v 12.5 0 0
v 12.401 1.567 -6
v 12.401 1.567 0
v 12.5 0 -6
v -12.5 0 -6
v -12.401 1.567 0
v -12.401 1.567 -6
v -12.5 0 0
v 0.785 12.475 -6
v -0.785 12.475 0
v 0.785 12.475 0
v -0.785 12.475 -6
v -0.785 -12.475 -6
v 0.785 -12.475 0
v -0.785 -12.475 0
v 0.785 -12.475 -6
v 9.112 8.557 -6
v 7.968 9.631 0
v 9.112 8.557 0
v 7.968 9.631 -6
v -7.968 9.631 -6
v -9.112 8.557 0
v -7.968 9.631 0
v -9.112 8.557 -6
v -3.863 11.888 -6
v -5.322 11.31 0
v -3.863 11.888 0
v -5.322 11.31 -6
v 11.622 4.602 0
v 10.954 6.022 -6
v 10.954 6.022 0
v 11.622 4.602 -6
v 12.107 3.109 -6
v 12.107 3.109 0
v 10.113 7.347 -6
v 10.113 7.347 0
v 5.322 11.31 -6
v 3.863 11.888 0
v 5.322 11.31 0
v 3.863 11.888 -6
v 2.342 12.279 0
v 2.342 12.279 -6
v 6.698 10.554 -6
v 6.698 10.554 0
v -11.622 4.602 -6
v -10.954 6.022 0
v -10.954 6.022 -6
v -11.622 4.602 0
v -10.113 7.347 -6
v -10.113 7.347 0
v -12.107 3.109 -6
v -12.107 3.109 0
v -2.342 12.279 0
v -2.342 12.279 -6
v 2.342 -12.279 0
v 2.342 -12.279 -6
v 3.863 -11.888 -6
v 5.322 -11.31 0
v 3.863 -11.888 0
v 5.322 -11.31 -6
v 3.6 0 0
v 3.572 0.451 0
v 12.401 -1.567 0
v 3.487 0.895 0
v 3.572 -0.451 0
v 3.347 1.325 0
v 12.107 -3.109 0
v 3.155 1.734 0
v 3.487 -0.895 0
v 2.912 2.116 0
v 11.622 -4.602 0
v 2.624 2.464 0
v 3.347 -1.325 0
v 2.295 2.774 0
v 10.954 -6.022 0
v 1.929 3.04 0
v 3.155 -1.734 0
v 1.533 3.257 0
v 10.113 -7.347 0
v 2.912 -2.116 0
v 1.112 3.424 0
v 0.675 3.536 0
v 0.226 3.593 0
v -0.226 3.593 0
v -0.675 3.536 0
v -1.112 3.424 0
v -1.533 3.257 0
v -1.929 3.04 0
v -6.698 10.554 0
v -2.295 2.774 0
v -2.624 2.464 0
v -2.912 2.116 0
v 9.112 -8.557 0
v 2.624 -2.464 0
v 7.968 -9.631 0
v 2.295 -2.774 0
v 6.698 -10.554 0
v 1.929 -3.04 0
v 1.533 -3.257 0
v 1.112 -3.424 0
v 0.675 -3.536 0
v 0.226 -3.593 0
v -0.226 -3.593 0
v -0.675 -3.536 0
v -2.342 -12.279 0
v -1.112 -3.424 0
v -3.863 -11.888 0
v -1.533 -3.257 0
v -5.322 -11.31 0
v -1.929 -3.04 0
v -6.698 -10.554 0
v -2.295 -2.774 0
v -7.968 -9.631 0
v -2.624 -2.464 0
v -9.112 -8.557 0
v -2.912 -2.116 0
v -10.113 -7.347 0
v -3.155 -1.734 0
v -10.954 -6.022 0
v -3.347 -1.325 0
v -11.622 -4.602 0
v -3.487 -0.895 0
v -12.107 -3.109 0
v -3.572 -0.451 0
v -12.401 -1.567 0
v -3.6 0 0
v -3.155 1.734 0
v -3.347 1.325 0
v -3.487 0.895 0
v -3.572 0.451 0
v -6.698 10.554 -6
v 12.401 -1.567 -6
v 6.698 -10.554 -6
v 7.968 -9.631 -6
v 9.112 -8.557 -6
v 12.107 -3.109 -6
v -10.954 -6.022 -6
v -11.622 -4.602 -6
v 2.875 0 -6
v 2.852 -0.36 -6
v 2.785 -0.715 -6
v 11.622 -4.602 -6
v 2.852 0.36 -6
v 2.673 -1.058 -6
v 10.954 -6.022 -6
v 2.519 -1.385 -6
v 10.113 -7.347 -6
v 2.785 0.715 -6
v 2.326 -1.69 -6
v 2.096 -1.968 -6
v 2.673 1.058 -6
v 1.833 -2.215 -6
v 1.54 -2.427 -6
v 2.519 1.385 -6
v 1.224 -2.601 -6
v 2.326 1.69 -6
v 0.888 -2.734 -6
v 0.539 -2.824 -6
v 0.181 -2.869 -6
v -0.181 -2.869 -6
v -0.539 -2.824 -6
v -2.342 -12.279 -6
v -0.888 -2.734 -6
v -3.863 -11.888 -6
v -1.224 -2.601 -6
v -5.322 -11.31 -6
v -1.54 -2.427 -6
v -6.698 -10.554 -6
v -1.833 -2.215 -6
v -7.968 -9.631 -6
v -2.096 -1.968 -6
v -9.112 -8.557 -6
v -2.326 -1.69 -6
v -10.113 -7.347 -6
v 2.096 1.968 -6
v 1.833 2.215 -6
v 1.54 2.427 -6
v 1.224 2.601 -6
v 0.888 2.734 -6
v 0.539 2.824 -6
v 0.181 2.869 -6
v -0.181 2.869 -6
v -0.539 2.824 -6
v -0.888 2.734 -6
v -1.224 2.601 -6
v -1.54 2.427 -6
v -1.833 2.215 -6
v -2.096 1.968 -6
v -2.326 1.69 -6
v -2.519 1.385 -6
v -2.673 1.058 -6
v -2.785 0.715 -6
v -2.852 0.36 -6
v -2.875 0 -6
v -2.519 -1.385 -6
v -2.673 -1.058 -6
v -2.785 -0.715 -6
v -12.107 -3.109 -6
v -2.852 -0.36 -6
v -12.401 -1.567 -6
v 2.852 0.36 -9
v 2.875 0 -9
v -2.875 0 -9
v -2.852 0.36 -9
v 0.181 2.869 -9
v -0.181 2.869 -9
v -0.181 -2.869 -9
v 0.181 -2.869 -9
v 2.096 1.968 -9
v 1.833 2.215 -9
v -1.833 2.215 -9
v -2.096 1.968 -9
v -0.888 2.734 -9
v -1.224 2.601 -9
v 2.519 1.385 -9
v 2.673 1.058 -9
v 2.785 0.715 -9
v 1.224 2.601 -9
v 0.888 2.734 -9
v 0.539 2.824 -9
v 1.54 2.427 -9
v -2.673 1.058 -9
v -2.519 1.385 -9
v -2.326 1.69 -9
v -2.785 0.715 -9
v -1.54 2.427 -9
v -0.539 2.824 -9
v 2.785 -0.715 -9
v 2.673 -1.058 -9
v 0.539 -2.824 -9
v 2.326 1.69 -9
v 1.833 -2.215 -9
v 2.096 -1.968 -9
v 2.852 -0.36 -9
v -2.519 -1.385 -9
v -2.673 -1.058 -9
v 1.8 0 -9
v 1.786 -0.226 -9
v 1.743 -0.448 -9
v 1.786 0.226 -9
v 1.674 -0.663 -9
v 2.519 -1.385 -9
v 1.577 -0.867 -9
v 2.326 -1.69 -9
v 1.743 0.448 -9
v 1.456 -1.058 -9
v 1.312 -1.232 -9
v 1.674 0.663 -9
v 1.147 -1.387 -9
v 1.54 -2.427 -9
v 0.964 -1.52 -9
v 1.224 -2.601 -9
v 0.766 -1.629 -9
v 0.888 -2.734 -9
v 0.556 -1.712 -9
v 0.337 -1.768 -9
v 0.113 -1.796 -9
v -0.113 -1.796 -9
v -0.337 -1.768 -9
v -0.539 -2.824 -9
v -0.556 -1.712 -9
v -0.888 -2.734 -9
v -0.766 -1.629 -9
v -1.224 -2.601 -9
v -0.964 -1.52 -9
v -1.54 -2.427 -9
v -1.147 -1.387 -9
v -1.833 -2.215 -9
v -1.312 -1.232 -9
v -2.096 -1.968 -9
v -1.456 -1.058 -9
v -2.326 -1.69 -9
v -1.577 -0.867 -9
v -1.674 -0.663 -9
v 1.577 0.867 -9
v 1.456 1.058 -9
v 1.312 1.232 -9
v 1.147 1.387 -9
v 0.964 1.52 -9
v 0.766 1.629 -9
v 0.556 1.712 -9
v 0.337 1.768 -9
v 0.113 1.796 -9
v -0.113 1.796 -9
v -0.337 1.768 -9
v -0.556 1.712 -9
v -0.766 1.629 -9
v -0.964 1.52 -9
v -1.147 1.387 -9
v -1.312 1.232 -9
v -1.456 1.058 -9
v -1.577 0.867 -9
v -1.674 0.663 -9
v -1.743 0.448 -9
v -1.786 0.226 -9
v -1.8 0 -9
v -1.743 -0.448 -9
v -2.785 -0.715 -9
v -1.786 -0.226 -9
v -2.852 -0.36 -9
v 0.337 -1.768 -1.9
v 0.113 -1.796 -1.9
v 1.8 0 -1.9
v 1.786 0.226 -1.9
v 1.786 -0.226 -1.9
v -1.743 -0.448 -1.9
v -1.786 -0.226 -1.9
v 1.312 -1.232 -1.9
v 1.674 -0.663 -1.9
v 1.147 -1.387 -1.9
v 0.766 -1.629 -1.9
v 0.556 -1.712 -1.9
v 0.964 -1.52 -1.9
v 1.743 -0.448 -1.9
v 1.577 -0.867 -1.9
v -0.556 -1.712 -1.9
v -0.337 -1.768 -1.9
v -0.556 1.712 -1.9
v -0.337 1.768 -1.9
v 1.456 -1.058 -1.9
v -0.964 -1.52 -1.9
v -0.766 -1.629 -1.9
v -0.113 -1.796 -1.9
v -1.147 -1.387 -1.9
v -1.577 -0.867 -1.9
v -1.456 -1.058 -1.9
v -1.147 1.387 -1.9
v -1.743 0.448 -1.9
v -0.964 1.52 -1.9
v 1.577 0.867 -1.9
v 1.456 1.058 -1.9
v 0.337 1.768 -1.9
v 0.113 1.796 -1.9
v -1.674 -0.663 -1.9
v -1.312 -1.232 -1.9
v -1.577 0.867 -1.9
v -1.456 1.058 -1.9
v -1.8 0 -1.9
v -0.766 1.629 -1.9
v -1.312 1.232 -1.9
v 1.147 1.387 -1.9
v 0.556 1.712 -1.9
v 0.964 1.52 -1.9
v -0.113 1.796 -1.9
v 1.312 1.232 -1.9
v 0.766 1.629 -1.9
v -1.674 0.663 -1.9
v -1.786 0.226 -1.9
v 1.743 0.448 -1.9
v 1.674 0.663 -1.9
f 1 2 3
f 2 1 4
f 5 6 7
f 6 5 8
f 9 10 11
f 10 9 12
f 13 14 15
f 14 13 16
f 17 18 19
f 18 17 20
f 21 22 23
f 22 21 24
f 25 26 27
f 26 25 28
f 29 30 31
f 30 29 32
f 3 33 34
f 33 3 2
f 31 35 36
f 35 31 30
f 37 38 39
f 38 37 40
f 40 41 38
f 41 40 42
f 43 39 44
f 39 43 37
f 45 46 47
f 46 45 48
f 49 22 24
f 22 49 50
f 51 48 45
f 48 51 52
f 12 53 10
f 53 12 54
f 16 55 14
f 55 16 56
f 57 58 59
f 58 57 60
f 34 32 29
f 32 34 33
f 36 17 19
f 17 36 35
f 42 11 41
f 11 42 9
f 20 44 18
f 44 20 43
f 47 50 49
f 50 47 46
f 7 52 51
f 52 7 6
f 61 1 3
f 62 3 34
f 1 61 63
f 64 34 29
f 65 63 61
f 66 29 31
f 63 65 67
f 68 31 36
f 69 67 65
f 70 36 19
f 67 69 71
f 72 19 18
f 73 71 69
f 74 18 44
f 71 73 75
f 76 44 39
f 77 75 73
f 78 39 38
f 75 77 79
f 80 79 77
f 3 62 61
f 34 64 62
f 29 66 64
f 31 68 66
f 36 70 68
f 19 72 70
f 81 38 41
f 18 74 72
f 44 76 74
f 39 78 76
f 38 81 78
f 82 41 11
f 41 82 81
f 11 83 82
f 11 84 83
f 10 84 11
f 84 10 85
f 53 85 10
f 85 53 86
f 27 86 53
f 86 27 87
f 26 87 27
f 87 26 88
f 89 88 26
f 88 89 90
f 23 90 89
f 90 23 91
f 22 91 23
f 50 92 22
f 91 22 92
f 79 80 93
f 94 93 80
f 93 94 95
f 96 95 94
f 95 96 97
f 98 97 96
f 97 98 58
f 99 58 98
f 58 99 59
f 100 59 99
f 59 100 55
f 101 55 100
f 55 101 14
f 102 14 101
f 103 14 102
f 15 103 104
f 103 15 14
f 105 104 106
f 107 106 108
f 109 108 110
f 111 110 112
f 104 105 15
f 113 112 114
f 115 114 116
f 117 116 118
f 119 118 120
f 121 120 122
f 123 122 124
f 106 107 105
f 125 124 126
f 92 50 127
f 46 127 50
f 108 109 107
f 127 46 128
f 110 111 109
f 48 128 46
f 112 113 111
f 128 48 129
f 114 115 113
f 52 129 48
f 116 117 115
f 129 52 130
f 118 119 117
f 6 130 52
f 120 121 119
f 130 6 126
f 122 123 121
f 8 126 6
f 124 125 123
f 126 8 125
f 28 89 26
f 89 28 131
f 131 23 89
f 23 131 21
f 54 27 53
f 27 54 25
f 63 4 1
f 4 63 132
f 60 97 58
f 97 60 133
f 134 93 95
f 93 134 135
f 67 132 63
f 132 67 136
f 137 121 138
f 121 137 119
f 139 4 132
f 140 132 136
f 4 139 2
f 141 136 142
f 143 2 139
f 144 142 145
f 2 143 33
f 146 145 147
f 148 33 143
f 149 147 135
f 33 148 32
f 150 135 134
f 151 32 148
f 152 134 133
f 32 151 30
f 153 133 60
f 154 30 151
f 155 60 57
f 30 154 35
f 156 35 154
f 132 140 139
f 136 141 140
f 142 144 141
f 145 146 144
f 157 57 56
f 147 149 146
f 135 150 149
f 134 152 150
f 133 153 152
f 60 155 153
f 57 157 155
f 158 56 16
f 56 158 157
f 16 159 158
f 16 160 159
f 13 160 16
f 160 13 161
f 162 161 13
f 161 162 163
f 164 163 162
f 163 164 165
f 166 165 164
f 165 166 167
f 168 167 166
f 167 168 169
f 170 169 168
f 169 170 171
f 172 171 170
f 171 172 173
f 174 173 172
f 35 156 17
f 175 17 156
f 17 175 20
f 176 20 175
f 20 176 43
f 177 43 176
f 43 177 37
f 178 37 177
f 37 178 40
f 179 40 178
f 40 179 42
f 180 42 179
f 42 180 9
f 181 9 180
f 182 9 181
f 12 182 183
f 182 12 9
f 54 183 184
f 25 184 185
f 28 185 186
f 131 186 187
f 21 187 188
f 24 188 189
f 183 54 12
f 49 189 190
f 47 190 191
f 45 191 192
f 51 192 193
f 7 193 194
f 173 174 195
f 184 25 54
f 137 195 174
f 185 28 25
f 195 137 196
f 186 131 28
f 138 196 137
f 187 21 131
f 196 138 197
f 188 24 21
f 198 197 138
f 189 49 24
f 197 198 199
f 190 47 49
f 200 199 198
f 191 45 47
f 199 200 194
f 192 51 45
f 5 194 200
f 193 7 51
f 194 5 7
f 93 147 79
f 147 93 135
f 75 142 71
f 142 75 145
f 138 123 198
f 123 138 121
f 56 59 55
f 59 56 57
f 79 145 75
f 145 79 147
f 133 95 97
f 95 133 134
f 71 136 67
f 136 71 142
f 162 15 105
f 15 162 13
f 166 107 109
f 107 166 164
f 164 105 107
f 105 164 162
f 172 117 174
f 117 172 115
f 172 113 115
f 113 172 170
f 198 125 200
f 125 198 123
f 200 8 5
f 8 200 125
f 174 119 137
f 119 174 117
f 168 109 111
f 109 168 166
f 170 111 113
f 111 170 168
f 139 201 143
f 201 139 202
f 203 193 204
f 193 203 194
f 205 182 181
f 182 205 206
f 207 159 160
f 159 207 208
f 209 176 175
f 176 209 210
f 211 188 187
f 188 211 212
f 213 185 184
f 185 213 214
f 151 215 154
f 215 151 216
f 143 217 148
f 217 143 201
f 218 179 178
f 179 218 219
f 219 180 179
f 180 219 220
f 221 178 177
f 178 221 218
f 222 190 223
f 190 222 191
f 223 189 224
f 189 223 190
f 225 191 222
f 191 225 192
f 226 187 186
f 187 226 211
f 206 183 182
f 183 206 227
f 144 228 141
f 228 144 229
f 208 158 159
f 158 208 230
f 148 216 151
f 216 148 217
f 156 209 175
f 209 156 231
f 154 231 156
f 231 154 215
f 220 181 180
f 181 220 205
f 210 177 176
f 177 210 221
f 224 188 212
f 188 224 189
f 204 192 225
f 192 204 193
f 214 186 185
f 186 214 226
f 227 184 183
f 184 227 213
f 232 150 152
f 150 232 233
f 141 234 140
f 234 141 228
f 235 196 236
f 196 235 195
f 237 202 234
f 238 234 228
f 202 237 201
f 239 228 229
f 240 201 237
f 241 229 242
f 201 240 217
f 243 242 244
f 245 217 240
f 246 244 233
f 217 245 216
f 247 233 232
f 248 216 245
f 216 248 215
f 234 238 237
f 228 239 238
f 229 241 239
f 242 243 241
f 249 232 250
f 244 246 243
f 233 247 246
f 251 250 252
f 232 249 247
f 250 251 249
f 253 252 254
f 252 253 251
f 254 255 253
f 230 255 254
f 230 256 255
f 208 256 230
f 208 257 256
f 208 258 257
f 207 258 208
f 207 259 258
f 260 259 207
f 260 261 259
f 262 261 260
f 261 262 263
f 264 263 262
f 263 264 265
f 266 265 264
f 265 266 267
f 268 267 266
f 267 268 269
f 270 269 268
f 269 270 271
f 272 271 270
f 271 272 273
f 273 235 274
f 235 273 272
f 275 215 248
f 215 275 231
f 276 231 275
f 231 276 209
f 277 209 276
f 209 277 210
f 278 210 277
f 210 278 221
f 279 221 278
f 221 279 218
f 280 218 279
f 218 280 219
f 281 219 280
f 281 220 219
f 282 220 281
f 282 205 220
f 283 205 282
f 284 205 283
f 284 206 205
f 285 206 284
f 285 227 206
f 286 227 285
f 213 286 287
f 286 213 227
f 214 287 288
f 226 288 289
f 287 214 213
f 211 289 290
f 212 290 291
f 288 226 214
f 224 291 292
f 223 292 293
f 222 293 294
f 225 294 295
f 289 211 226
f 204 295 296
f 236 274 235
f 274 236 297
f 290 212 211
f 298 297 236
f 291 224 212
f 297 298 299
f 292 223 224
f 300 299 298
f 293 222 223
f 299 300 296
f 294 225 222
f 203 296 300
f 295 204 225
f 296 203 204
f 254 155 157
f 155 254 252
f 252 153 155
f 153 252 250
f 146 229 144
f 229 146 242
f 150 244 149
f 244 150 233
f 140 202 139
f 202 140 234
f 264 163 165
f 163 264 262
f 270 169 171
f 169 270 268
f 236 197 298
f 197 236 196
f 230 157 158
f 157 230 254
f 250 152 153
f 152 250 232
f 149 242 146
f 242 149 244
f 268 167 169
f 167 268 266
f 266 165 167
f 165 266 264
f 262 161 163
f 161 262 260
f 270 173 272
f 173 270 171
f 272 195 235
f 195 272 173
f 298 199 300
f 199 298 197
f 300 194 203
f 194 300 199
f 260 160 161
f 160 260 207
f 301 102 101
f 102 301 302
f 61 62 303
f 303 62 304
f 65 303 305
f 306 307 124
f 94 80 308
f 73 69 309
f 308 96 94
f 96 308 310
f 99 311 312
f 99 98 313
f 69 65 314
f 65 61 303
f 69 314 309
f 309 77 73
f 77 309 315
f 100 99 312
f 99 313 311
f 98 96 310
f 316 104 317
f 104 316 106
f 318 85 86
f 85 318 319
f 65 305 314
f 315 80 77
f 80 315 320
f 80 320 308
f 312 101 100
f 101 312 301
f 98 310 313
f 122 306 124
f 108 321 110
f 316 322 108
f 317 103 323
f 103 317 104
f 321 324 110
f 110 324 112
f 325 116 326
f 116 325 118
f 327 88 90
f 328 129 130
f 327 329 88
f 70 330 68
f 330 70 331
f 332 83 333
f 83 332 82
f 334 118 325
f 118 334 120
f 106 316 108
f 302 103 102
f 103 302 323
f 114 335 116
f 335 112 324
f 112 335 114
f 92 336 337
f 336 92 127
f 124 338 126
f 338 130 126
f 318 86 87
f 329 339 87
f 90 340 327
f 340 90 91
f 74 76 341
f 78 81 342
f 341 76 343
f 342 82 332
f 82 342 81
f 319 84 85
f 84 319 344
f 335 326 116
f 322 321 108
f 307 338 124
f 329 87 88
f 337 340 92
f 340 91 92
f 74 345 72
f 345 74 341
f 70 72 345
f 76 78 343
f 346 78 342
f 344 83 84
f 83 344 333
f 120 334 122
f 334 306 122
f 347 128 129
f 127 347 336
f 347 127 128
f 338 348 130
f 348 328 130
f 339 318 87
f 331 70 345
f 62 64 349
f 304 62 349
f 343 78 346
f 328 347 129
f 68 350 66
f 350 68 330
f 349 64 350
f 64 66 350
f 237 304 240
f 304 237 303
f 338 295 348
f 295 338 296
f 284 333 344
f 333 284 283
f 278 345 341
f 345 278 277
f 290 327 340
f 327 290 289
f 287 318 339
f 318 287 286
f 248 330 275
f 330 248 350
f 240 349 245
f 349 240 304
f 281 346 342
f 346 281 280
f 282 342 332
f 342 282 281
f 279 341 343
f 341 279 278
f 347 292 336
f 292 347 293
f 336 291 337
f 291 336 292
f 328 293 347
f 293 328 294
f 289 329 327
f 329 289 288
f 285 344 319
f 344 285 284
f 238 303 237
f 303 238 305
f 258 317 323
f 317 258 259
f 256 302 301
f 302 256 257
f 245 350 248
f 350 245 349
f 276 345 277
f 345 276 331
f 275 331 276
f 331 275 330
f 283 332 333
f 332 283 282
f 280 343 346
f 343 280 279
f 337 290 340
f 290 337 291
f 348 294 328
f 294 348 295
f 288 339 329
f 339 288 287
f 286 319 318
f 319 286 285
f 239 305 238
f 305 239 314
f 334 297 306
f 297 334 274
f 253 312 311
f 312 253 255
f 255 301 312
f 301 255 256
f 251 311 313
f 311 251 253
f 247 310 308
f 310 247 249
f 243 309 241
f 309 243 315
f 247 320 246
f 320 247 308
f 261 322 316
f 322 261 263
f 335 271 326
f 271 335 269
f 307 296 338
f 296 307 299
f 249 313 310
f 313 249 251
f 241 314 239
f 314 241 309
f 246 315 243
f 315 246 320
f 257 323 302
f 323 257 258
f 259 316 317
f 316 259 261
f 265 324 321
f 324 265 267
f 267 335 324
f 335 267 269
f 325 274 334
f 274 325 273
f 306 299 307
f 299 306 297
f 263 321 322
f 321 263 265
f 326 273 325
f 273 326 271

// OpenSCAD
$fn = 50;

difference() {
	union() {
		translate(v = [0, 0, -6.0]) {
			cylinder(h = 6, r = 12.5);
		}
		#translate(v = [0, 0, -9.0]) {
			cylinder(h = 9, r = 2.875);
		}
	}
	union() {
		translate(v = [0, 0, 0]) {
			rotate(a = [0, 0, 0]) {
				difference() {
					union() {
						translate(v = [0, 0, -9.0]) {
							cylinder(h = 9, r = 1.5);
						}
						translate(v = [0, 0, -1.9]) {
							cylinder(h = 1.9, r1 = 1.8, r2 = 3.6);
						}
						translate(v = [0, 0, -9.0]) {
							cylinder(h = 9, r = 1.8);
						}
						translate(v = [0, 0, -9.0]) {
							cylinder(h = 9, r = 1.5);
						}
					}
					union();
				}
			}
		}
	}
}
